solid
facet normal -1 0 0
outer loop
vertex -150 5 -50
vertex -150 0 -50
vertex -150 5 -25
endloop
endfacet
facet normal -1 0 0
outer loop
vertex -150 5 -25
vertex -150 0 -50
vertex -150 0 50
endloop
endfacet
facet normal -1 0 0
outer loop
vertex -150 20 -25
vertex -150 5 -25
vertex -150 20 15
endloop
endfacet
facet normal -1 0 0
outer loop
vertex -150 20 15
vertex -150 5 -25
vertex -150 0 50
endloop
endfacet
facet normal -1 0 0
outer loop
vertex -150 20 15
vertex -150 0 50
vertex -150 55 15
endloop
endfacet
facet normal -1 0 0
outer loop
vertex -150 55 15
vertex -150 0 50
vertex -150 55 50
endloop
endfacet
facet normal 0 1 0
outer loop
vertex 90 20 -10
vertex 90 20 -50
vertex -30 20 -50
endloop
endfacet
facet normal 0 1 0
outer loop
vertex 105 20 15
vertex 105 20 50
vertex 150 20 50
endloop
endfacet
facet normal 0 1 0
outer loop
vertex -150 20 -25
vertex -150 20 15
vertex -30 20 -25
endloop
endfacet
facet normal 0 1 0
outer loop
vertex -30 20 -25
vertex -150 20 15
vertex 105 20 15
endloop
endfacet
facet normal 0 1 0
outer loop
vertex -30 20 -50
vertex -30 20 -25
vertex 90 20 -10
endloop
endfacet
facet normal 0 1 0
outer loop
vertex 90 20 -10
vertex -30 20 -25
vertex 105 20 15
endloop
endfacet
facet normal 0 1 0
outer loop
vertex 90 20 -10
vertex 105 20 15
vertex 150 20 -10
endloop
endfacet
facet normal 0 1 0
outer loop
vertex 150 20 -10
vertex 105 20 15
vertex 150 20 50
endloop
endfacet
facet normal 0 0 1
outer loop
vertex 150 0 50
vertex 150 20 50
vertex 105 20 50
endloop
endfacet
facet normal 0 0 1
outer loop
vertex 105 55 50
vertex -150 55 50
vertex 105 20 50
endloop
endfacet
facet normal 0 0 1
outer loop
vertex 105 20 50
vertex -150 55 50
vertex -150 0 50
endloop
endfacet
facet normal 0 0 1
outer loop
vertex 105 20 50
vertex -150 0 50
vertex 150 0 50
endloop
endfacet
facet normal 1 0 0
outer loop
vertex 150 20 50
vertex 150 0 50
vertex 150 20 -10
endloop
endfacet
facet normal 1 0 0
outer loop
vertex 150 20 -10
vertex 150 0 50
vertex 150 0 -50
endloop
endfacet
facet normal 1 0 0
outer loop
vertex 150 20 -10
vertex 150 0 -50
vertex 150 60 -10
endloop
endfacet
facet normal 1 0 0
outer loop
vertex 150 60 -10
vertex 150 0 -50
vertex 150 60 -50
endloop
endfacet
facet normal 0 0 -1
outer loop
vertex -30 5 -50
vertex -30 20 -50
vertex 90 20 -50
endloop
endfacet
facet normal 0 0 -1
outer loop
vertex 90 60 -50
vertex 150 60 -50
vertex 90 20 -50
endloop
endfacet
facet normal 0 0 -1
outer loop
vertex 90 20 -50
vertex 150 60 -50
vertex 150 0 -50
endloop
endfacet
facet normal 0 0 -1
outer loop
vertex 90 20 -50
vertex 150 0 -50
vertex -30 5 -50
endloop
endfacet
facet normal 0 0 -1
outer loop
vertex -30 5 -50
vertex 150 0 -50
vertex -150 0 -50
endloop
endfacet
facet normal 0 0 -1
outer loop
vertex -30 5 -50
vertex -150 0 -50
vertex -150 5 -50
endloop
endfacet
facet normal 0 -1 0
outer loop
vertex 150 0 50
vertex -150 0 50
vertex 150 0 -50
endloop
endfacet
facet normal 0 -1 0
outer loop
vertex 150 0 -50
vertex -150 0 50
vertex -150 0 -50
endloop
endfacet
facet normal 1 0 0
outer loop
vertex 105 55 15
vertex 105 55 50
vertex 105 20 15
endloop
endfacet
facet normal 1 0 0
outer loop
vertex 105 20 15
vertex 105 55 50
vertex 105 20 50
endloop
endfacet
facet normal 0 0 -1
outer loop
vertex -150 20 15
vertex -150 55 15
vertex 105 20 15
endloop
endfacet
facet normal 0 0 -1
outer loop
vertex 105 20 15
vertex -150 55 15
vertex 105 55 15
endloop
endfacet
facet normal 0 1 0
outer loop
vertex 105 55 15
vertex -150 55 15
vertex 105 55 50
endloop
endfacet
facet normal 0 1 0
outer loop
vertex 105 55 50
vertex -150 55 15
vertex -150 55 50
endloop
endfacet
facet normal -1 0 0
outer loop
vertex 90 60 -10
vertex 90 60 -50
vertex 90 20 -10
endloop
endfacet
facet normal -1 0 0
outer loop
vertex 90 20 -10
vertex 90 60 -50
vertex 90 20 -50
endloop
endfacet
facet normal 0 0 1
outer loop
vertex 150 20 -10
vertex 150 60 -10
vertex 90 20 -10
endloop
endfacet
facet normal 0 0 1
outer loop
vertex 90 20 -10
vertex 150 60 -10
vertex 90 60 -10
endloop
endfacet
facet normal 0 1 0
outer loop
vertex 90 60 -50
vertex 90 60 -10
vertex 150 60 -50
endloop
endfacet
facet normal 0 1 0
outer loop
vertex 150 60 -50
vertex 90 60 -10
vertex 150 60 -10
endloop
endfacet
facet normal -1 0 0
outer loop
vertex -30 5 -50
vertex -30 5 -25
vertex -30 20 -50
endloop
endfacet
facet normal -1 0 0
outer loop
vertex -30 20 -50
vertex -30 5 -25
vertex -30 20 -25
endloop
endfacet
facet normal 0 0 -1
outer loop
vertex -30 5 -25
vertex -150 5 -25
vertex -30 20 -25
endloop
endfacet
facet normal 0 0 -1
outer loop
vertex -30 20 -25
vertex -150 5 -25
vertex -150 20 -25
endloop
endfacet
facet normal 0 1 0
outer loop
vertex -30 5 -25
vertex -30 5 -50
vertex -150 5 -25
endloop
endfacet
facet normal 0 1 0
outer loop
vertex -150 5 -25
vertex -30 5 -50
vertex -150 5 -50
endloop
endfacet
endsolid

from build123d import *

# Parameters (mm, degrees)
SKETCH1_W           = 300
SKETCH1_H           = 100
BOSS_EXTRUDE1_DEPTH = 20
SKETCH1_3_W         = 255
SKETCH1_3_H         = 35
BOSS_EXTRUDE2_DEPTH = 55
SKETCH1_5_W         = 60
SKETCH1_5_H         = 40
BOSS_EXTRUDE3_DEPTH = 60
CUT_EXTRUDE1_START  = 20
SKETCH1_6_W         = 120
SKETCH1_6_H         = 25
CUT_EXTRUDE1_DEPTH  = 15


with BuildPart() as part:
    # Sketch1 → Boss-Extrude1 (new body)
    with BuildSketch(Plane(origin=(0, 0, 0), x_dir=(1, 0, 0), z_dir=(0, 1, 0))):
        Rectangle(SKETCH1_W, SKETCH1_H)
    extrude(amount=BOSS_EXTRUDE1_DEPTH)

    # Sketch1<3> → Boss-Extrude2 (add)
    with BuildSketch(Plane(origin=(0, 0, 0), x_dir=(1, 0, 0), z_dir=(0, 1, 0))):
        with Locations((-22.5, -32.5)):
            Rectangle(SKETCH1_3_W, SKETCH1_3_H)
    extrude(amount=BOSS_EXTRUDE2_DEPTH)

    # Sketch1<5> → Boss-Extrude3 (add)
    with BuildSketch(Plane(origin=(0, 0, 0), x_dir=(1, 0, 0), z_dir=(0, 1, 0))):
        with Locations((120, 30)):
            Rectangle(SKETCH1_5_W, SKETCH1_5_H)
    extrude(amount=BOSS_EXTRUDE3_DEPTH)

    # Sketch1<6> → Cut-Extrude1 (cut)
    with BuildSketch(Plane(origin=(0, 0, 0), x_dir=(1, 0, 0), z_dir=(0, 1, 0)).offset(CUT_EXTRUDE1_START)):
        with Locations((-90, 37.5)):
            Rectangle(SKETCH1_6_W, SKETCH1_6_H)
    extrude(amount=-CUT_EXTRUDE1_DEPTH, mode=Mode.SUBTRACT)


solid = part.part
